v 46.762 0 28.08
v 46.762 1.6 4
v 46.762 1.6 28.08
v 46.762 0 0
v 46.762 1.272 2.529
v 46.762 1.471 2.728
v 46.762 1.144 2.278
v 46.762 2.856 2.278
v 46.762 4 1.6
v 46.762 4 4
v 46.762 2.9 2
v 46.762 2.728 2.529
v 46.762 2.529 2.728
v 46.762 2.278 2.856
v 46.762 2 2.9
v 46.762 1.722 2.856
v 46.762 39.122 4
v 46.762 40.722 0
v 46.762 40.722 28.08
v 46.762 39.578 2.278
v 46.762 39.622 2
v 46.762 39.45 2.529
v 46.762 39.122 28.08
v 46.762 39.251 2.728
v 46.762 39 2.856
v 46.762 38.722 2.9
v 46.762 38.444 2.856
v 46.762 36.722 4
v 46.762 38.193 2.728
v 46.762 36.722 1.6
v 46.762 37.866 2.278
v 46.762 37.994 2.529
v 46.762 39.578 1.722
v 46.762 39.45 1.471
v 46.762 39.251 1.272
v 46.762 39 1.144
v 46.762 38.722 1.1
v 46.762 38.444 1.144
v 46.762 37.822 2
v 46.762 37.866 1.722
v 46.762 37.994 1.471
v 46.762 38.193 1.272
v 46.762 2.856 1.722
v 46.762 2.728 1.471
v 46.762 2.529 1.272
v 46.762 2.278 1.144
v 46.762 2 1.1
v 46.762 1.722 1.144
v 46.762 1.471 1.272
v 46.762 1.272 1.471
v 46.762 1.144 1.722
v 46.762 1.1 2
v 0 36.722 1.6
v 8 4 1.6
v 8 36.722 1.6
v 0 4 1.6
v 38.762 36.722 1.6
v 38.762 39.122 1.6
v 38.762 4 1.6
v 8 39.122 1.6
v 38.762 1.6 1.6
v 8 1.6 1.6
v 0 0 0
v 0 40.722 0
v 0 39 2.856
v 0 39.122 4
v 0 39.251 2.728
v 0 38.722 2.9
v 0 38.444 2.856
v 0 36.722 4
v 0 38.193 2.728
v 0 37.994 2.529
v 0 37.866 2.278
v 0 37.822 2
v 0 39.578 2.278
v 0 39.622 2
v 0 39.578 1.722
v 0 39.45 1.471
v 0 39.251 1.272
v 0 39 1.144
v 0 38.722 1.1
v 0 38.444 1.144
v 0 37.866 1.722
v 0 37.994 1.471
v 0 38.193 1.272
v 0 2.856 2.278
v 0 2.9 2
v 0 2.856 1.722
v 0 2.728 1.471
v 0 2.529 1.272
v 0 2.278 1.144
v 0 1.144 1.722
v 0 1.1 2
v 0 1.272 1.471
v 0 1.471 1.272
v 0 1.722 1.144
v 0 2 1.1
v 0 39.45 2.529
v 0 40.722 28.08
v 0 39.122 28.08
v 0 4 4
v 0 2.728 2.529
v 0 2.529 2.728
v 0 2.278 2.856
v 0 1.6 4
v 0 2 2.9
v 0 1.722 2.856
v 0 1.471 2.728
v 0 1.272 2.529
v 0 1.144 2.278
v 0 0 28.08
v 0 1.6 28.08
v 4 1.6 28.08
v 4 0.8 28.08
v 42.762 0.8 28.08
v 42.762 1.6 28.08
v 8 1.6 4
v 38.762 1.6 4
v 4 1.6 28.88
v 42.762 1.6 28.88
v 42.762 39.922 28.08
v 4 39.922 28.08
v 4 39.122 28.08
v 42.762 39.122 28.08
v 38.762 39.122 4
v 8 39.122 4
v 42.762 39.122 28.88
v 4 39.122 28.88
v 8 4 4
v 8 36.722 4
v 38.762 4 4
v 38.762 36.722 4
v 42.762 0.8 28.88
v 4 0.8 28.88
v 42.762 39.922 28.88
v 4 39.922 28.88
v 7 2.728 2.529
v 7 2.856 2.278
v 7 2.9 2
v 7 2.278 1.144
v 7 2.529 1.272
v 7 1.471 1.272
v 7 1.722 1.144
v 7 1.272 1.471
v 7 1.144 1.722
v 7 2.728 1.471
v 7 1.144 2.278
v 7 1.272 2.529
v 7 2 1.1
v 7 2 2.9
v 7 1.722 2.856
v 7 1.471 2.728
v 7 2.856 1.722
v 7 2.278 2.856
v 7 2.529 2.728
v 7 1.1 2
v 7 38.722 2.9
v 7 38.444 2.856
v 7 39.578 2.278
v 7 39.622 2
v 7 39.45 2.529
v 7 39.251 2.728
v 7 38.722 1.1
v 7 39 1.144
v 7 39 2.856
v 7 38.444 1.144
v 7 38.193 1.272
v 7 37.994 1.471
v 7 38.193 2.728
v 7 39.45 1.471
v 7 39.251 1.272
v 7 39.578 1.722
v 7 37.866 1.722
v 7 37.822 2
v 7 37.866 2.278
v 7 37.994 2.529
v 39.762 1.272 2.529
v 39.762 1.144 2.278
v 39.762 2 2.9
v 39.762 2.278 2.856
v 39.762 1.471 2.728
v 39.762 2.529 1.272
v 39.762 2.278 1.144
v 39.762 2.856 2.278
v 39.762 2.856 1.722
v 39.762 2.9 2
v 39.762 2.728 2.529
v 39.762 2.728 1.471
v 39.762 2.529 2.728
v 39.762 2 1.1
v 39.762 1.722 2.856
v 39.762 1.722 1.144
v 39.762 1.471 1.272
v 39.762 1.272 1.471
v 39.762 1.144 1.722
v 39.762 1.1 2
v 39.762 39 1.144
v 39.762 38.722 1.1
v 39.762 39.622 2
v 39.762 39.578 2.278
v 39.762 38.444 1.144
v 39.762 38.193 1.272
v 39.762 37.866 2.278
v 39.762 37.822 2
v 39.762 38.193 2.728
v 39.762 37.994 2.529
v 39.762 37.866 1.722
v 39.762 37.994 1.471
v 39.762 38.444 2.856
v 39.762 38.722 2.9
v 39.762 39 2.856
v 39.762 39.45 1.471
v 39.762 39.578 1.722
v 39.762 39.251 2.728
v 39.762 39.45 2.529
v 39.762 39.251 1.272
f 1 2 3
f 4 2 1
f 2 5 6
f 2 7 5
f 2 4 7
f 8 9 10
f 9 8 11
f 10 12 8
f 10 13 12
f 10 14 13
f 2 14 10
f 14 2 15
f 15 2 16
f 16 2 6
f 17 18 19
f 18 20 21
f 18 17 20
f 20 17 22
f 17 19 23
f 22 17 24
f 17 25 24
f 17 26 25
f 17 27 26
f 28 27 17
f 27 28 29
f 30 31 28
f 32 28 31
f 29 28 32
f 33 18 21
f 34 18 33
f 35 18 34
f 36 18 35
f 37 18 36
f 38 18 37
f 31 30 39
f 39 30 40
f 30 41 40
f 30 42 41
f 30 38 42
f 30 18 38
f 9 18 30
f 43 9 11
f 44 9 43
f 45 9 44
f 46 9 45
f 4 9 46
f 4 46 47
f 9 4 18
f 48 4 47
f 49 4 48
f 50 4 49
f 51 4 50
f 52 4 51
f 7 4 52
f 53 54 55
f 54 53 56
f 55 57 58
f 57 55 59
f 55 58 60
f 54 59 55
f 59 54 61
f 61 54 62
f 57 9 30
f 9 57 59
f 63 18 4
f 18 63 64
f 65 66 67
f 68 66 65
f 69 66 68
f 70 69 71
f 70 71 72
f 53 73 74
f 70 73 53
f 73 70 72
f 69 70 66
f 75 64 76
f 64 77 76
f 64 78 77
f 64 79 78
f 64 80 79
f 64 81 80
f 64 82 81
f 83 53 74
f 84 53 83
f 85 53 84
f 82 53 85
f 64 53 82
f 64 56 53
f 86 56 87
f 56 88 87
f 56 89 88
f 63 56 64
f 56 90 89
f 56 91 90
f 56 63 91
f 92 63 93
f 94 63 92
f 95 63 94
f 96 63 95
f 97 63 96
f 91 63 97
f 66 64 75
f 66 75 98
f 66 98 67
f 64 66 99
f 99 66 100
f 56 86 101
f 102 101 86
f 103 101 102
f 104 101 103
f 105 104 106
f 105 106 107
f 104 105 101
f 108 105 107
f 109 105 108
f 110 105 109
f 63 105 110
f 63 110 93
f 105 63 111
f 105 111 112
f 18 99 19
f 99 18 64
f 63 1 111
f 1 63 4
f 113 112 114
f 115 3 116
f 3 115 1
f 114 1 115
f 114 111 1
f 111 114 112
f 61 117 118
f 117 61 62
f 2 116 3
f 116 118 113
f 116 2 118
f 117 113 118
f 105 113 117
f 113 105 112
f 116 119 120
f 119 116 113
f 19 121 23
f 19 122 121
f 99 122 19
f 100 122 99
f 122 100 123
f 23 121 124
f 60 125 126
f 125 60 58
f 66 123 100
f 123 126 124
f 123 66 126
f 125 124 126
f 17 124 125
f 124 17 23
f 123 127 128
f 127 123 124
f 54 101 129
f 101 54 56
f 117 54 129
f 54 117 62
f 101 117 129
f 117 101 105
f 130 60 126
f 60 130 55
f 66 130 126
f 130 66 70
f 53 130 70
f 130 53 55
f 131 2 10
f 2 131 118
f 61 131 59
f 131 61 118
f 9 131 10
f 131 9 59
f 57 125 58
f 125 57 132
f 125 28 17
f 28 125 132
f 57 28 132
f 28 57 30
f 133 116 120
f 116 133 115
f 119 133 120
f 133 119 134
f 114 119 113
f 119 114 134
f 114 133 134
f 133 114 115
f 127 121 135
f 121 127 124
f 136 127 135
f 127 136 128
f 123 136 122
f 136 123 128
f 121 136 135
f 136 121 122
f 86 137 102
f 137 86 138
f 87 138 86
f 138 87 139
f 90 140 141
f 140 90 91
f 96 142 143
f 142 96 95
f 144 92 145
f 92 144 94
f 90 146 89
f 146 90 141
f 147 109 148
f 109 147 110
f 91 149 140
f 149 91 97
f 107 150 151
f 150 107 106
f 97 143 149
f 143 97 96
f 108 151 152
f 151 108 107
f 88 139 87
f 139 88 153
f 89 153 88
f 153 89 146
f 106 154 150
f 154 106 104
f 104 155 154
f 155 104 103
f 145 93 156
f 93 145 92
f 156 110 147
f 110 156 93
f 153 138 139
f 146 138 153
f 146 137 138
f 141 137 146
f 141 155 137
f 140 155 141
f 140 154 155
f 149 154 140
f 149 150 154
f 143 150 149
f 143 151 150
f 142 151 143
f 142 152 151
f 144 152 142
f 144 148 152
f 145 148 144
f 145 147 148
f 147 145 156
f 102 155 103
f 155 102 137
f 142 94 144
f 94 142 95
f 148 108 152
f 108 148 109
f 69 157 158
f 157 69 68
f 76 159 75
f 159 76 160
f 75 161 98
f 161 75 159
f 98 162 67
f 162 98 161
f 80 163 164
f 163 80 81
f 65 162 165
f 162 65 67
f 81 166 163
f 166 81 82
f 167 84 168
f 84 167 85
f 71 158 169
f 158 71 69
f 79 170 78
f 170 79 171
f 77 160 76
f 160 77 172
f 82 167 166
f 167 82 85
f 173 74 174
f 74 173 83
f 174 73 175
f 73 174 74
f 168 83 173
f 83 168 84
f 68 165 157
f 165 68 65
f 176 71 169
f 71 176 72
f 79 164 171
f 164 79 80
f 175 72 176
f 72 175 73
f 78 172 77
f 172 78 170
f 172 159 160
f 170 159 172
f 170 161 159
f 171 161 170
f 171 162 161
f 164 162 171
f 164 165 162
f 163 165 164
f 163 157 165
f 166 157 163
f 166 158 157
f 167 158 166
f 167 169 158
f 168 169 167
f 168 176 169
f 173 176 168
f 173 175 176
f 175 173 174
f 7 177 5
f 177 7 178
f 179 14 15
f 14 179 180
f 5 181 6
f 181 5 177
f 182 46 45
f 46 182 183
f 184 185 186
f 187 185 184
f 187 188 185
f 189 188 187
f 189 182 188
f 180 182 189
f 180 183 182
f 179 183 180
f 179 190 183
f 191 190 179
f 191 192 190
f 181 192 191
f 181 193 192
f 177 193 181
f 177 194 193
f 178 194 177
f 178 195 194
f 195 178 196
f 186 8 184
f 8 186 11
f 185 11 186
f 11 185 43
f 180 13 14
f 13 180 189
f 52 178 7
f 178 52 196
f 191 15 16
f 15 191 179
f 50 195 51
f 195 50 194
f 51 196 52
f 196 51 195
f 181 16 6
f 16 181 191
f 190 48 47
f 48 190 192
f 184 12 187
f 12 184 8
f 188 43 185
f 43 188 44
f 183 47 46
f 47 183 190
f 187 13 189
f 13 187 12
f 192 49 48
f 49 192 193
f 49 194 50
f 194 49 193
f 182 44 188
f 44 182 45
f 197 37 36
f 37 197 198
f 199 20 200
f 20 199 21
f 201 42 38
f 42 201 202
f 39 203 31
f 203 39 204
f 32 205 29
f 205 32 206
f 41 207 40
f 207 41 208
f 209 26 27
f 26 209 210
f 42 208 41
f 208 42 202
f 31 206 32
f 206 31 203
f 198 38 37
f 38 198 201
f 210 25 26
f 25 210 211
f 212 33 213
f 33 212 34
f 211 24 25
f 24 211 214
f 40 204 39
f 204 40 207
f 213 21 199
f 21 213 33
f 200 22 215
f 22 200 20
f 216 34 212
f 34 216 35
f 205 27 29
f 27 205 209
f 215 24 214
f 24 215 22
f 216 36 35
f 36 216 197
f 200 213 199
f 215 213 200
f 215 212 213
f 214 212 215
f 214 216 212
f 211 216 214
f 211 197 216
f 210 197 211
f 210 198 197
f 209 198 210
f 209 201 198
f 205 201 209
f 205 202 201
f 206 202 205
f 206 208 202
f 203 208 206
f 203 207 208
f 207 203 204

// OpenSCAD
// file: lib/ssd1306.scad
/*
 * SPDX-FileCopyrightText: 2022 Rafael G. Martins <rafael@rafaelmartins.eng.br>
 * SPDX-License-Identifier: CERN-OHL-S-2.0
 */

ssd1306_pcb_thickness = 1.6;
ssd1306_pcb_base_height = 2;
ssd1306_pcb_base_d = 4;
ssd1306_pcb_base_screw_d = 1.8;
ssd1306_pcb_base_spacing_x = 23.5;
ssd1306_pcb_base_spacing_y = 23.8;
ssd1306_screen_width = 25.5;
ssd1306_screen_height = 14.5;
ssd1306_screen_distance_x = (ssd1306_pcb_base_spacing_x - ssd1306_screen_width) / 2;
ssd1306_screen_distance_y = 2.3;
ssd1306_pin_distance_y = 0.45;


module ssd1306_add(thickness) {
    translate([-ssd1306_pcb_base_d / 2, -ssd1306_pcb_base_d / 2, 0])
        cube([ssd1306_pcb_base_spacing_x + ssd1306_pcb_base_d,
              ssd1306_pcb_base_spacing_y + ssd1306_pcb_base_d,
              thickness]);

    for(i=[0:1])
        for(j=[0:1])
            translate([i * ssd1306_pcb_base_spacing_x, j * ssd1306_pcb_base_spacing_y, thickness])
                cylinder(ssd1306_pcb_base_height, d=ssd1306_pcb_base_d, $fn=20);
}


module ssd1306_sub(thickness) {
    translate([ssd1306_screen_distance_x, ssd1306_screen_distance_y, 0])
        cube([ssd1306_screen_width, ssd1306_screen_height, thickness]);

    for(i=[0:1])
        for(j=[0:1])
            translate([i * ssd1306_pcb_base_spacing_x, j * ssd1306_pcb_base_spacing_y, thickness])
                cylinder(ssd1306_pcb_base_height, d=ssd1306_pcb_base_screw_d, $fn=20);
}
// file: settings.scad
/*
 * SPDX-FileCopyrightText: 2022 Rafael G. Martins <rafael@rafaelmartins.eng.br>
 * SPDX-License-Identifier: CERN-OHL-S-2.0
 */

include <lib/screw-base.scad>
include <lib/ssd1306.scad>

thickness = 1.6;

pcb_width = 41.402;
pcb_length = 36.322;
pcb_thickness = 1.6;
pcb_screw_padding = 3.556;
pcb_screw_spacing_x = pcb_width - 2 * pcb_screw_padding;
pcb_screw_spacing_y = pcb_length - 2 * pcb_screw_padding;
pcb_base_d = 5;
pcb_base_screw_d = 1.8;
pcb_base_height = 10 + ssd1306_pcb_thickness + ssd1306_pcb_base_height;
pcb_oled_pin_y = 2.54;

width = 2 * (thickness + 3) + pcb_width;
length = 2 * thickness + 1.2 + pcb_length;
height = 30;

pcb0_x = (width - pcb_width) / 2;
pcb0_y = (length - pcb_length) / 2;

oled0_x = (width - ssd1306_pcb_base_spacing_x) / 2;
oled0_y = pcb0_y + pcb_oled_pin_y + ssd1306_pin_distance_y;

screw_d = 2;
screw_h = 7;

gap = thickness * 0.2;
// file: lib/screw-base.scad
/*
 * SPDX-FileCopyrightText: 2022 Rafael G. Martins <rafael@rafaelmartins.eng.br>
 * SPDX-License-Identifier: CERN-OHL-S-2.0
 */

function screw_base_dim(screw_d) = screw_d + 2;
function screw_base_height(screw_h) = screw_h + 1;


module screw_base_add(screw_d, screw_h) {
    cube([screw_base_dim(screw_d), screw_base_dim(screw_d), screw_base_height(screw_h)]);
}


module screw_base_sub(screw_d, screw_h) {
    translate([screw_base_dim(screw_d) / 2, screw_base_dim(screw_d) / 2, 0])
        cylinder(screw_h, d=screw_d - 0.2, $fn=20);
}
// main file
/*
 * SPDX-FileCopyrightText: 2022 Rafael G. Martins <rafael@rafaelmartins.eng.br>
 * SPDX-License-Identifier: CERN-OHL-S-2.0
 */

include <lib/screw-base.scad>
include <settings.scad>

width_ = width - 2 * (thickness + gap);
height_ = height - thickness - gap;


difference() {
    union() {
        cube([width_, length, thickness]);
        cube([width_, thickness, height_]);
        translate([0, length - thickness, 0])
            cube([width_, thickness, height_]);

        translate([0, 0, 0])
            rotate([90, 0, 90])
                screw_base_add(screw_d, screw_h);
        translate([0, length, 0])
            rotate([90, -90, 90])
                screw_base_add(screw_d, screw_h);
        translate([width_, 0, 0])
            rotate([0, -90, 0])
                screw_base_add(screw_d, screw_h);
        translate([width_, length, 0])
            rotate([90, 0, -90])
                screw_base_add(screw_d, screw_h);

        translate([4, thickness / 2, height_])
            cube([width_ - 8, thickness / 2, thickness / 2]);
        translate([4, length - thickness, height_])
            cube([width_ - 8, thickness / 2, thickness / 2]);
    }

    translate([0, 0, 0])
        rotate([90, 0, 90])
            screw_base_sub(screw_d, screw_h);
    translate([0, length, 0])
        rotate([90, -90, 90])
            screw_base_sub(screw_d, screw_h);
    translate([width_, 0, 0])
        rotate([0, -90, 0])
            screw_base_sub(screw_d, screw_h);
    translate([width_, length, 0])
        rotate([90, 0, -90])
            screw_base_sub(screw_d, screw_h);
}
